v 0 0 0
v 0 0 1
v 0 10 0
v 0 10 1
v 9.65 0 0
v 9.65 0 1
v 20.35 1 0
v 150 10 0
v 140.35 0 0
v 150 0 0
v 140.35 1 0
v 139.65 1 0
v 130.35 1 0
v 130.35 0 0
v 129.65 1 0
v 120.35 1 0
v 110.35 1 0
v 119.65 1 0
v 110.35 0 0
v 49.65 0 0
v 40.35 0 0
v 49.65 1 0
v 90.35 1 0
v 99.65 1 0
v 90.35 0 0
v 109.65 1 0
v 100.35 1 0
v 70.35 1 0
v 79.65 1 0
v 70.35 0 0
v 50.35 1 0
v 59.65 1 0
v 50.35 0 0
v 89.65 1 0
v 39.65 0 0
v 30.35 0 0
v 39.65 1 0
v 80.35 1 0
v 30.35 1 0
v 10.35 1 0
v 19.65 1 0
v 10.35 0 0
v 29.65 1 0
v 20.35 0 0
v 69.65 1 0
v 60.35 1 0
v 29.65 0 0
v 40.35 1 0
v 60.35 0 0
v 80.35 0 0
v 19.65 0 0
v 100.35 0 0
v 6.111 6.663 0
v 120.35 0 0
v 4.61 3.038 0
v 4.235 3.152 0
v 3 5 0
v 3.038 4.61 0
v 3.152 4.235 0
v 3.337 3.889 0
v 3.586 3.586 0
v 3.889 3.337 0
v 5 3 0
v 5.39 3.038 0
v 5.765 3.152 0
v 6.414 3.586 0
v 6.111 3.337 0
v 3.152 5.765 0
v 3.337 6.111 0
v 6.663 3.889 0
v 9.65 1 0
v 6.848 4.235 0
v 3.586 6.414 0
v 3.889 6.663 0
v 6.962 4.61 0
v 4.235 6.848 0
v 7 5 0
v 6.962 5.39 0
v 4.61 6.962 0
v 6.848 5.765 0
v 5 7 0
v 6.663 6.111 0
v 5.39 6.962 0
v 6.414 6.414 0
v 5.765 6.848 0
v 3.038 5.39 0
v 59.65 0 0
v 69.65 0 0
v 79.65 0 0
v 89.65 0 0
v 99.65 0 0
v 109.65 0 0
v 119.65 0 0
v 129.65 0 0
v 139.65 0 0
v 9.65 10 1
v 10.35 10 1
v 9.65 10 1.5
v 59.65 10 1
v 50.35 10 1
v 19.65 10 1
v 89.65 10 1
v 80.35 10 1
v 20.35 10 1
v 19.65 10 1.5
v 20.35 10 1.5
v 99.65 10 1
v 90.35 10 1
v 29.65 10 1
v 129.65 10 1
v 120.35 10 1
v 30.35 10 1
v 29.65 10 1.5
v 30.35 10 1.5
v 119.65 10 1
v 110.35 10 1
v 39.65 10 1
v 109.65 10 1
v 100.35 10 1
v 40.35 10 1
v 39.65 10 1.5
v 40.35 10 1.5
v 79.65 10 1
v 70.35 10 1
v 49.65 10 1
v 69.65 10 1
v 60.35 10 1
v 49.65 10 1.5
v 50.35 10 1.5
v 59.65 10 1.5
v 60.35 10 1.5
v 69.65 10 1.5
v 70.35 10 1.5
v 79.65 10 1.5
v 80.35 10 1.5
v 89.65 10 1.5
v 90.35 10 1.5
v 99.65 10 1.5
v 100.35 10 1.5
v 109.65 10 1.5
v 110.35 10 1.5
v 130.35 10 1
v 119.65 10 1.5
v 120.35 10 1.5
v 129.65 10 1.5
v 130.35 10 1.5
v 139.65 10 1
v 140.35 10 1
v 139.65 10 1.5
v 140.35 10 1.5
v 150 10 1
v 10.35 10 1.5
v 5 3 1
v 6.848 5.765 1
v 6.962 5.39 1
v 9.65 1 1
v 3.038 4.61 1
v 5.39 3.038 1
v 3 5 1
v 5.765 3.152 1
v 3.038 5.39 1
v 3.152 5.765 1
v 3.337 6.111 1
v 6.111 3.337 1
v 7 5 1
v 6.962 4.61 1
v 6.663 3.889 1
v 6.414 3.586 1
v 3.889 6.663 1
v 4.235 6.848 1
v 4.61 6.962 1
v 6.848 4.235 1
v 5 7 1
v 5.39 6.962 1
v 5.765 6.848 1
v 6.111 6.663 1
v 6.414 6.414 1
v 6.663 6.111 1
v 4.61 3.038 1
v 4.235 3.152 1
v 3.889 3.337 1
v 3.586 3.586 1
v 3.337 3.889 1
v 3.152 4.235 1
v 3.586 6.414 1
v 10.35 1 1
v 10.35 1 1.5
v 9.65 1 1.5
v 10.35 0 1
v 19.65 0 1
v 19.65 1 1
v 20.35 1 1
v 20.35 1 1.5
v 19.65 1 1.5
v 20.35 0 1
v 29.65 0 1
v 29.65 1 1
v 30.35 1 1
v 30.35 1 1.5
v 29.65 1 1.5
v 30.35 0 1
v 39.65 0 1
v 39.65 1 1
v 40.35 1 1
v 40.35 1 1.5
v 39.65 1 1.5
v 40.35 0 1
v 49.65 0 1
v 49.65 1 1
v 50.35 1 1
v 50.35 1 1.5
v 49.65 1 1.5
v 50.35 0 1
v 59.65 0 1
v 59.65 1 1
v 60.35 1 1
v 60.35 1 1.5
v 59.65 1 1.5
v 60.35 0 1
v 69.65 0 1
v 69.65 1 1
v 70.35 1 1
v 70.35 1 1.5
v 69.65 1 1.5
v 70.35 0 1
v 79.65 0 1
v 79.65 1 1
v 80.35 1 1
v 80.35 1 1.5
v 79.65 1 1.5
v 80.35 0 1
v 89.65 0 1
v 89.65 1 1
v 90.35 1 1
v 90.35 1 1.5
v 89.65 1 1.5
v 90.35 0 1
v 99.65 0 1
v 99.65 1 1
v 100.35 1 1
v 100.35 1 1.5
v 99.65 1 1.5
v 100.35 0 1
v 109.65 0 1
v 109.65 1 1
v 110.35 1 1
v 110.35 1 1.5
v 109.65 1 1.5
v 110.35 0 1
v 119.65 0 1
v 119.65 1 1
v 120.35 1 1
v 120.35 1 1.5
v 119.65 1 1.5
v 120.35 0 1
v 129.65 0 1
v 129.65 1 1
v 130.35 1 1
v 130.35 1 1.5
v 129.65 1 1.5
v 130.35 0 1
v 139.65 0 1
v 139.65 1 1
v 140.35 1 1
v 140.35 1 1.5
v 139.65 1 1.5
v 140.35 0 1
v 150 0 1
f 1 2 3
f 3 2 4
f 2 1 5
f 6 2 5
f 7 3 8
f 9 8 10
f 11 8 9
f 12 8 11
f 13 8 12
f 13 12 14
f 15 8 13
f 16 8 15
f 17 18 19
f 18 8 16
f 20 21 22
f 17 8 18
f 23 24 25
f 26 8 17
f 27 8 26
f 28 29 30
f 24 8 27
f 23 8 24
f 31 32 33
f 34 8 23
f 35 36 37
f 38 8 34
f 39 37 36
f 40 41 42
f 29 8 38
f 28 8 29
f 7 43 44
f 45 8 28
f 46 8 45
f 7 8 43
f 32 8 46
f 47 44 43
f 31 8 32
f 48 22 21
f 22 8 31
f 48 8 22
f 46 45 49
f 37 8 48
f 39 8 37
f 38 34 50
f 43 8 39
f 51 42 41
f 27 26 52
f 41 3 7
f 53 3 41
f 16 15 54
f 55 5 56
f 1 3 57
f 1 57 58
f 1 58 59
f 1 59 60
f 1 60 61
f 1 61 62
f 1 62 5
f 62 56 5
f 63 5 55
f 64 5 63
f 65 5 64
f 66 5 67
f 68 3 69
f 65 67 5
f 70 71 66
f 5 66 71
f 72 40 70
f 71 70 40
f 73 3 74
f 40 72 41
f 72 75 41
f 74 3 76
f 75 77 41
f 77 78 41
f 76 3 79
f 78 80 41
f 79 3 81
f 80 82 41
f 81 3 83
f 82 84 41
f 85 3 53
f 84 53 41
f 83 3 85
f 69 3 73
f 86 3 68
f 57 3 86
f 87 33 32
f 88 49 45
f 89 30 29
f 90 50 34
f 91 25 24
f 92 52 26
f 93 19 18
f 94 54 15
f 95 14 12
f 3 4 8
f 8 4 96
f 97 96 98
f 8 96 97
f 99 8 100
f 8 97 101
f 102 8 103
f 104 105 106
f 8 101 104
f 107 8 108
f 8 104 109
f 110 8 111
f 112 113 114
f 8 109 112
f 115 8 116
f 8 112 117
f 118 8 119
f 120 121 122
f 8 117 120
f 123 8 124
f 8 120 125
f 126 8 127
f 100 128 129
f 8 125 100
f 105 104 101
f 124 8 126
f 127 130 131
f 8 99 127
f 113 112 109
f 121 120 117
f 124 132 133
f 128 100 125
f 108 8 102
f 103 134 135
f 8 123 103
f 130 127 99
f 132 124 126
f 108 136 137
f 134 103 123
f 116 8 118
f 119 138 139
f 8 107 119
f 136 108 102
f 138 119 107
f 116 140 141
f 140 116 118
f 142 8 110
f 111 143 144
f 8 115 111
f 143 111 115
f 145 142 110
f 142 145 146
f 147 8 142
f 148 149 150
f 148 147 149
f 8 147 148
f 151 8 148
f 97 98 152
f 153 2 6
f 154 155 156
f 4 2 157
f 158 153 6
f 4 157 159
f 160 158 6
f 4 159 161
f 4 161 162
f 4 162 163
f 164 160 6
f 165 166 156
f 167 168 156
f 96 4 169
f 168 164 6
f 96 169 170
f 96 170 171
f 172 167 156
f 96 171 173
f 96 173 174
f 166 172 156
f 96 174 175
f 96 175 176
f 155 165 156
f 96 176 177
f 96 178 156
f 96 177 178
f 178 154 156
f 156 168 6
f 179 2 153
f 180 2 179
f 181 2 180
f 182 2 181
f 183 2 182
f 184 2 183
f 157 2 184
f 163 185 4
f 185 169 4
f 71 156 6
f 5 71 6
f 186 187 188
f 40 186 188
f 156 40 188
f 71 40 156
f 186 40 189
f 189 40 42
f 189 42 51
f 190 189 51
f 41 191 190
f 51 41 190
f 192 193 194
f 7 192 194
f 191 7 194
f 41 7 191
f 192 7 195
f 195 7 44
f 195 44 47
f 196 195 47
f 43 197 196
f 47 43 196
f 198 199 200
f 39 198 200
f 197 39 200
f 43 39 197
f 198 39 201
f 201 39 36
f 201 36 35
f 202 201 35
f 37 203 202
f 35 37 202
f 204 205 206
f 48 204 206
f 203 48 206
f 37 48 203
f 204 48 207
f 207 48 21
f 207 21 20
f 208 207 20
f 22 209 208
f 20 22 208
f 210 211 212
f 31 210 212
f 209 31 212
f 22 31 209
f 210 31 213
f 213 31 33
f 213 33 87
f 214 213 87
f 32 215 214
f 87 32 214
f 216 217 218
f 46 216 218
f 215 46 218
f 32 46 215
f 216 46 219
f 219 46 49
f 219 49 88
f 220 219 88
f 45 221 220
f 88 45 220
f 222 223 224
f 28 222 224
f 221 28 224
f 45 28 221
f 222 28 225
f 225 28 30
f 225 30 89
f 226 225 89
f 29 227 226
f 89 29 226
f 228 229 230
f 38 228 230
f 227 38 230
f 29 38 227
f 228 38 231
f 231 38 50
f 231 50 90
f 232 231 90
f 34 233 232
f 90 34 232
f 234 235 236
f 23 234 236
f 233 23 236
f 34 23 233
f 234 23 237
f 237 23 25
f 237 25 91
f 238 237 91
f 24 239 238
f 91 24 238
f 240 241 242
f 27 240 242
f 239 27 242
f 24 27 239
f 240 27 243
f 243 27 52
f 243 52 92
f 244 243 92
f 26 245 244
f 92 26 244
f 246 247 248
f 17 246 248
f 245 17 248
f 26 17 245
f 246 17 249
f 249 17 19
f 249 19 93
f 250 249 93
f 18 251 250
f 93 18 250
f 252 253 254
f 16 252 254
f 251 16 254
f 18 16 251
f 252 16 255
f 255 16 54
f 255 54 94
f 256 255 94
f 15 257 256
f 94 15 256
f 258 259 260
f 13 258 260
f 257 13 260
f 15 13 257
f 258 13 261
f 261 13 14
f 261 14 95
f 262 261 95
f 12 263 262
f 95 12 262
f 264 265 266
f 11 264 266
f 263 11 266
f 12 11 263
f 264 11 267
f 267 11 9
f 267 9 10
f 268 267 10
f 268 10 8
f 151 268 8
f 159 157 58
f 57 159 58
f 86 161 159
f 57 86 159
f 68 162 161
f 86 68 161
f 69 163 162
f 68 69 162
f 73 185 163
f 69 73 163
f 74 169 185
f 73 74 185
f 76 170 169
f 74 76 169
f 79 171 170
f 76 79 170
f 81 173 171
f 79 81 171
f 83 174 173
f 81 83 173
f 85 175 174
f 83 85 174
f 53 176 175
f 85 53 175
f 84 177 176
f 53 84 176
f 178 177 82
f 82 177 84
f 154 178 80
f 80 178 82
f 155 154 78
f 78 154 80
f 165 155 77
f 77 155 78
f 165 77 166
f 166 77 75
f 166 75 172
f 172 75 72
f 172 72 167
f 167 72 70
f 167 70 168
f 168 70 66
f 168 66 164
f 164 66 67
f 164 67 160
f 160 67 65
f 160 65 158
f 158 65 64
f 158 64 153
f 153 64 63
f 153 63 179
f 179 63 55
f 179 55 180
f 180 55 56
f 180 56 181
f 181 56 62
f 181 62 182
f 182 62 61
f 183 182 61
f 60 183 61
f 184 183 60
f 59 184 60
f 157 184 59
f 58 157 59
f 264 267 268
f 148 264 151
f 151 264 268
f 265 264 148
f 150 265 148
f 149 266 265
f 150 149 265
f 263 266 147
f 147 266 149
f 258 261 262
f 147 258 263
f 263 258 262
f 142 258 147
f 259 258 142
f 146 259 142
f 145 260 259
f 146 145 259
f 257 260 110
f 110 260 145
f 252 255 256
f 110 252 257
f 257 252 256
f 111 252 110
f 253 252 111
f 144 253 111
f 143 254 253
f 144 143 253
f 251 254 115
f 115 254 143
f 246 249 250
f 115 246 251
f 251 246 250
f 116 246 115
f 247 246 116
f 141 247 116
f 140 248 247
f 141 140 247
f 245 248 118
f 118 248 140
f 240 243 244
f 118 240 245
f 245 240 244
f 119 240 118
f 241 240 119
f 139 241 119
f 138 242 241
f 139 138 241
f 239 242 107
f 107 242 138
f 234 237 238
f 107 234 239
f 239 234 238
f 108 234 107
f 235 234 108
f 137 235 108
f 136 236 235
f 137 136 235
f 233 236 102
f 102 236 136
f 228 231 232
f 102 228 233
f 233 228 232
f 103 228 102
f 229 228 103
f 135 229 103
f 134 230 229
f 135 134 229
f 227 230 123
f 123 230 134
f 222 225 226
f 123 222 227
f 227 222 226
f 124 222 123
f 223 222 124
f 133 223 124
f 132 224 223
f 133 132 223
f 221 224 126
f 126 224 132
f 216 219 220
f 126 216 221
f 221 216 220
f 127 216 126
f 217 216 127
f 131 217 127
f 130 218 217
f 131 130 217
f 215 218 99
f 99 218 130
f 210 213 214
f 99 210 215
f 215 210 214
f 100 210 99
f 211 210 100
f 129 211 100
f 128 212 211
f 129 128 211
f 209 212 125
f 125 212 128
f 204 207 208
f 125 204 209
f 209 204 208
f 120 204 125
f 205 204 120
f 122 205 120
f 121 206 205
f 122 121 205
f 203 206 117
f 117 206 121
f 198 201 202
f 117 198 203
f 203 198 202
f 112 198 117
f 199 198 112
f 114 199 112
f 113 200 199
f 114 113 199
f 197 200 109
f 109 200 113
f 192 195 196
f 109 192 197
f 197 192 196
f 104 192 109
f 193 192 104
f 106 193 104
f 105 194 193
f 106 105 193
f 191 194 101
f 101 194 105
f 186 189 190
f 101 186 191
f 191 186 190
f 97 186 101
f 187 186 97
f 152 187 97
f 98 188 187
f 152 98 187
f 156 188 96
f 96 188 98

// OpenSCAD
difference(){
union(){
	cube([150,10,1]);

	for(i = [1:14]){
		translate([i*10 - .35, 0, 0]) 
			cube([.7, 10, 1.5]);
	}
}

for(i = [1:14]){
	translate([i*10 - .35, -.5, -.1]) 
			cube([.7, 1.5, 2]);
}

translate([5,5,-1]) cylinder(r=2,h=5, $fn=32);
}
